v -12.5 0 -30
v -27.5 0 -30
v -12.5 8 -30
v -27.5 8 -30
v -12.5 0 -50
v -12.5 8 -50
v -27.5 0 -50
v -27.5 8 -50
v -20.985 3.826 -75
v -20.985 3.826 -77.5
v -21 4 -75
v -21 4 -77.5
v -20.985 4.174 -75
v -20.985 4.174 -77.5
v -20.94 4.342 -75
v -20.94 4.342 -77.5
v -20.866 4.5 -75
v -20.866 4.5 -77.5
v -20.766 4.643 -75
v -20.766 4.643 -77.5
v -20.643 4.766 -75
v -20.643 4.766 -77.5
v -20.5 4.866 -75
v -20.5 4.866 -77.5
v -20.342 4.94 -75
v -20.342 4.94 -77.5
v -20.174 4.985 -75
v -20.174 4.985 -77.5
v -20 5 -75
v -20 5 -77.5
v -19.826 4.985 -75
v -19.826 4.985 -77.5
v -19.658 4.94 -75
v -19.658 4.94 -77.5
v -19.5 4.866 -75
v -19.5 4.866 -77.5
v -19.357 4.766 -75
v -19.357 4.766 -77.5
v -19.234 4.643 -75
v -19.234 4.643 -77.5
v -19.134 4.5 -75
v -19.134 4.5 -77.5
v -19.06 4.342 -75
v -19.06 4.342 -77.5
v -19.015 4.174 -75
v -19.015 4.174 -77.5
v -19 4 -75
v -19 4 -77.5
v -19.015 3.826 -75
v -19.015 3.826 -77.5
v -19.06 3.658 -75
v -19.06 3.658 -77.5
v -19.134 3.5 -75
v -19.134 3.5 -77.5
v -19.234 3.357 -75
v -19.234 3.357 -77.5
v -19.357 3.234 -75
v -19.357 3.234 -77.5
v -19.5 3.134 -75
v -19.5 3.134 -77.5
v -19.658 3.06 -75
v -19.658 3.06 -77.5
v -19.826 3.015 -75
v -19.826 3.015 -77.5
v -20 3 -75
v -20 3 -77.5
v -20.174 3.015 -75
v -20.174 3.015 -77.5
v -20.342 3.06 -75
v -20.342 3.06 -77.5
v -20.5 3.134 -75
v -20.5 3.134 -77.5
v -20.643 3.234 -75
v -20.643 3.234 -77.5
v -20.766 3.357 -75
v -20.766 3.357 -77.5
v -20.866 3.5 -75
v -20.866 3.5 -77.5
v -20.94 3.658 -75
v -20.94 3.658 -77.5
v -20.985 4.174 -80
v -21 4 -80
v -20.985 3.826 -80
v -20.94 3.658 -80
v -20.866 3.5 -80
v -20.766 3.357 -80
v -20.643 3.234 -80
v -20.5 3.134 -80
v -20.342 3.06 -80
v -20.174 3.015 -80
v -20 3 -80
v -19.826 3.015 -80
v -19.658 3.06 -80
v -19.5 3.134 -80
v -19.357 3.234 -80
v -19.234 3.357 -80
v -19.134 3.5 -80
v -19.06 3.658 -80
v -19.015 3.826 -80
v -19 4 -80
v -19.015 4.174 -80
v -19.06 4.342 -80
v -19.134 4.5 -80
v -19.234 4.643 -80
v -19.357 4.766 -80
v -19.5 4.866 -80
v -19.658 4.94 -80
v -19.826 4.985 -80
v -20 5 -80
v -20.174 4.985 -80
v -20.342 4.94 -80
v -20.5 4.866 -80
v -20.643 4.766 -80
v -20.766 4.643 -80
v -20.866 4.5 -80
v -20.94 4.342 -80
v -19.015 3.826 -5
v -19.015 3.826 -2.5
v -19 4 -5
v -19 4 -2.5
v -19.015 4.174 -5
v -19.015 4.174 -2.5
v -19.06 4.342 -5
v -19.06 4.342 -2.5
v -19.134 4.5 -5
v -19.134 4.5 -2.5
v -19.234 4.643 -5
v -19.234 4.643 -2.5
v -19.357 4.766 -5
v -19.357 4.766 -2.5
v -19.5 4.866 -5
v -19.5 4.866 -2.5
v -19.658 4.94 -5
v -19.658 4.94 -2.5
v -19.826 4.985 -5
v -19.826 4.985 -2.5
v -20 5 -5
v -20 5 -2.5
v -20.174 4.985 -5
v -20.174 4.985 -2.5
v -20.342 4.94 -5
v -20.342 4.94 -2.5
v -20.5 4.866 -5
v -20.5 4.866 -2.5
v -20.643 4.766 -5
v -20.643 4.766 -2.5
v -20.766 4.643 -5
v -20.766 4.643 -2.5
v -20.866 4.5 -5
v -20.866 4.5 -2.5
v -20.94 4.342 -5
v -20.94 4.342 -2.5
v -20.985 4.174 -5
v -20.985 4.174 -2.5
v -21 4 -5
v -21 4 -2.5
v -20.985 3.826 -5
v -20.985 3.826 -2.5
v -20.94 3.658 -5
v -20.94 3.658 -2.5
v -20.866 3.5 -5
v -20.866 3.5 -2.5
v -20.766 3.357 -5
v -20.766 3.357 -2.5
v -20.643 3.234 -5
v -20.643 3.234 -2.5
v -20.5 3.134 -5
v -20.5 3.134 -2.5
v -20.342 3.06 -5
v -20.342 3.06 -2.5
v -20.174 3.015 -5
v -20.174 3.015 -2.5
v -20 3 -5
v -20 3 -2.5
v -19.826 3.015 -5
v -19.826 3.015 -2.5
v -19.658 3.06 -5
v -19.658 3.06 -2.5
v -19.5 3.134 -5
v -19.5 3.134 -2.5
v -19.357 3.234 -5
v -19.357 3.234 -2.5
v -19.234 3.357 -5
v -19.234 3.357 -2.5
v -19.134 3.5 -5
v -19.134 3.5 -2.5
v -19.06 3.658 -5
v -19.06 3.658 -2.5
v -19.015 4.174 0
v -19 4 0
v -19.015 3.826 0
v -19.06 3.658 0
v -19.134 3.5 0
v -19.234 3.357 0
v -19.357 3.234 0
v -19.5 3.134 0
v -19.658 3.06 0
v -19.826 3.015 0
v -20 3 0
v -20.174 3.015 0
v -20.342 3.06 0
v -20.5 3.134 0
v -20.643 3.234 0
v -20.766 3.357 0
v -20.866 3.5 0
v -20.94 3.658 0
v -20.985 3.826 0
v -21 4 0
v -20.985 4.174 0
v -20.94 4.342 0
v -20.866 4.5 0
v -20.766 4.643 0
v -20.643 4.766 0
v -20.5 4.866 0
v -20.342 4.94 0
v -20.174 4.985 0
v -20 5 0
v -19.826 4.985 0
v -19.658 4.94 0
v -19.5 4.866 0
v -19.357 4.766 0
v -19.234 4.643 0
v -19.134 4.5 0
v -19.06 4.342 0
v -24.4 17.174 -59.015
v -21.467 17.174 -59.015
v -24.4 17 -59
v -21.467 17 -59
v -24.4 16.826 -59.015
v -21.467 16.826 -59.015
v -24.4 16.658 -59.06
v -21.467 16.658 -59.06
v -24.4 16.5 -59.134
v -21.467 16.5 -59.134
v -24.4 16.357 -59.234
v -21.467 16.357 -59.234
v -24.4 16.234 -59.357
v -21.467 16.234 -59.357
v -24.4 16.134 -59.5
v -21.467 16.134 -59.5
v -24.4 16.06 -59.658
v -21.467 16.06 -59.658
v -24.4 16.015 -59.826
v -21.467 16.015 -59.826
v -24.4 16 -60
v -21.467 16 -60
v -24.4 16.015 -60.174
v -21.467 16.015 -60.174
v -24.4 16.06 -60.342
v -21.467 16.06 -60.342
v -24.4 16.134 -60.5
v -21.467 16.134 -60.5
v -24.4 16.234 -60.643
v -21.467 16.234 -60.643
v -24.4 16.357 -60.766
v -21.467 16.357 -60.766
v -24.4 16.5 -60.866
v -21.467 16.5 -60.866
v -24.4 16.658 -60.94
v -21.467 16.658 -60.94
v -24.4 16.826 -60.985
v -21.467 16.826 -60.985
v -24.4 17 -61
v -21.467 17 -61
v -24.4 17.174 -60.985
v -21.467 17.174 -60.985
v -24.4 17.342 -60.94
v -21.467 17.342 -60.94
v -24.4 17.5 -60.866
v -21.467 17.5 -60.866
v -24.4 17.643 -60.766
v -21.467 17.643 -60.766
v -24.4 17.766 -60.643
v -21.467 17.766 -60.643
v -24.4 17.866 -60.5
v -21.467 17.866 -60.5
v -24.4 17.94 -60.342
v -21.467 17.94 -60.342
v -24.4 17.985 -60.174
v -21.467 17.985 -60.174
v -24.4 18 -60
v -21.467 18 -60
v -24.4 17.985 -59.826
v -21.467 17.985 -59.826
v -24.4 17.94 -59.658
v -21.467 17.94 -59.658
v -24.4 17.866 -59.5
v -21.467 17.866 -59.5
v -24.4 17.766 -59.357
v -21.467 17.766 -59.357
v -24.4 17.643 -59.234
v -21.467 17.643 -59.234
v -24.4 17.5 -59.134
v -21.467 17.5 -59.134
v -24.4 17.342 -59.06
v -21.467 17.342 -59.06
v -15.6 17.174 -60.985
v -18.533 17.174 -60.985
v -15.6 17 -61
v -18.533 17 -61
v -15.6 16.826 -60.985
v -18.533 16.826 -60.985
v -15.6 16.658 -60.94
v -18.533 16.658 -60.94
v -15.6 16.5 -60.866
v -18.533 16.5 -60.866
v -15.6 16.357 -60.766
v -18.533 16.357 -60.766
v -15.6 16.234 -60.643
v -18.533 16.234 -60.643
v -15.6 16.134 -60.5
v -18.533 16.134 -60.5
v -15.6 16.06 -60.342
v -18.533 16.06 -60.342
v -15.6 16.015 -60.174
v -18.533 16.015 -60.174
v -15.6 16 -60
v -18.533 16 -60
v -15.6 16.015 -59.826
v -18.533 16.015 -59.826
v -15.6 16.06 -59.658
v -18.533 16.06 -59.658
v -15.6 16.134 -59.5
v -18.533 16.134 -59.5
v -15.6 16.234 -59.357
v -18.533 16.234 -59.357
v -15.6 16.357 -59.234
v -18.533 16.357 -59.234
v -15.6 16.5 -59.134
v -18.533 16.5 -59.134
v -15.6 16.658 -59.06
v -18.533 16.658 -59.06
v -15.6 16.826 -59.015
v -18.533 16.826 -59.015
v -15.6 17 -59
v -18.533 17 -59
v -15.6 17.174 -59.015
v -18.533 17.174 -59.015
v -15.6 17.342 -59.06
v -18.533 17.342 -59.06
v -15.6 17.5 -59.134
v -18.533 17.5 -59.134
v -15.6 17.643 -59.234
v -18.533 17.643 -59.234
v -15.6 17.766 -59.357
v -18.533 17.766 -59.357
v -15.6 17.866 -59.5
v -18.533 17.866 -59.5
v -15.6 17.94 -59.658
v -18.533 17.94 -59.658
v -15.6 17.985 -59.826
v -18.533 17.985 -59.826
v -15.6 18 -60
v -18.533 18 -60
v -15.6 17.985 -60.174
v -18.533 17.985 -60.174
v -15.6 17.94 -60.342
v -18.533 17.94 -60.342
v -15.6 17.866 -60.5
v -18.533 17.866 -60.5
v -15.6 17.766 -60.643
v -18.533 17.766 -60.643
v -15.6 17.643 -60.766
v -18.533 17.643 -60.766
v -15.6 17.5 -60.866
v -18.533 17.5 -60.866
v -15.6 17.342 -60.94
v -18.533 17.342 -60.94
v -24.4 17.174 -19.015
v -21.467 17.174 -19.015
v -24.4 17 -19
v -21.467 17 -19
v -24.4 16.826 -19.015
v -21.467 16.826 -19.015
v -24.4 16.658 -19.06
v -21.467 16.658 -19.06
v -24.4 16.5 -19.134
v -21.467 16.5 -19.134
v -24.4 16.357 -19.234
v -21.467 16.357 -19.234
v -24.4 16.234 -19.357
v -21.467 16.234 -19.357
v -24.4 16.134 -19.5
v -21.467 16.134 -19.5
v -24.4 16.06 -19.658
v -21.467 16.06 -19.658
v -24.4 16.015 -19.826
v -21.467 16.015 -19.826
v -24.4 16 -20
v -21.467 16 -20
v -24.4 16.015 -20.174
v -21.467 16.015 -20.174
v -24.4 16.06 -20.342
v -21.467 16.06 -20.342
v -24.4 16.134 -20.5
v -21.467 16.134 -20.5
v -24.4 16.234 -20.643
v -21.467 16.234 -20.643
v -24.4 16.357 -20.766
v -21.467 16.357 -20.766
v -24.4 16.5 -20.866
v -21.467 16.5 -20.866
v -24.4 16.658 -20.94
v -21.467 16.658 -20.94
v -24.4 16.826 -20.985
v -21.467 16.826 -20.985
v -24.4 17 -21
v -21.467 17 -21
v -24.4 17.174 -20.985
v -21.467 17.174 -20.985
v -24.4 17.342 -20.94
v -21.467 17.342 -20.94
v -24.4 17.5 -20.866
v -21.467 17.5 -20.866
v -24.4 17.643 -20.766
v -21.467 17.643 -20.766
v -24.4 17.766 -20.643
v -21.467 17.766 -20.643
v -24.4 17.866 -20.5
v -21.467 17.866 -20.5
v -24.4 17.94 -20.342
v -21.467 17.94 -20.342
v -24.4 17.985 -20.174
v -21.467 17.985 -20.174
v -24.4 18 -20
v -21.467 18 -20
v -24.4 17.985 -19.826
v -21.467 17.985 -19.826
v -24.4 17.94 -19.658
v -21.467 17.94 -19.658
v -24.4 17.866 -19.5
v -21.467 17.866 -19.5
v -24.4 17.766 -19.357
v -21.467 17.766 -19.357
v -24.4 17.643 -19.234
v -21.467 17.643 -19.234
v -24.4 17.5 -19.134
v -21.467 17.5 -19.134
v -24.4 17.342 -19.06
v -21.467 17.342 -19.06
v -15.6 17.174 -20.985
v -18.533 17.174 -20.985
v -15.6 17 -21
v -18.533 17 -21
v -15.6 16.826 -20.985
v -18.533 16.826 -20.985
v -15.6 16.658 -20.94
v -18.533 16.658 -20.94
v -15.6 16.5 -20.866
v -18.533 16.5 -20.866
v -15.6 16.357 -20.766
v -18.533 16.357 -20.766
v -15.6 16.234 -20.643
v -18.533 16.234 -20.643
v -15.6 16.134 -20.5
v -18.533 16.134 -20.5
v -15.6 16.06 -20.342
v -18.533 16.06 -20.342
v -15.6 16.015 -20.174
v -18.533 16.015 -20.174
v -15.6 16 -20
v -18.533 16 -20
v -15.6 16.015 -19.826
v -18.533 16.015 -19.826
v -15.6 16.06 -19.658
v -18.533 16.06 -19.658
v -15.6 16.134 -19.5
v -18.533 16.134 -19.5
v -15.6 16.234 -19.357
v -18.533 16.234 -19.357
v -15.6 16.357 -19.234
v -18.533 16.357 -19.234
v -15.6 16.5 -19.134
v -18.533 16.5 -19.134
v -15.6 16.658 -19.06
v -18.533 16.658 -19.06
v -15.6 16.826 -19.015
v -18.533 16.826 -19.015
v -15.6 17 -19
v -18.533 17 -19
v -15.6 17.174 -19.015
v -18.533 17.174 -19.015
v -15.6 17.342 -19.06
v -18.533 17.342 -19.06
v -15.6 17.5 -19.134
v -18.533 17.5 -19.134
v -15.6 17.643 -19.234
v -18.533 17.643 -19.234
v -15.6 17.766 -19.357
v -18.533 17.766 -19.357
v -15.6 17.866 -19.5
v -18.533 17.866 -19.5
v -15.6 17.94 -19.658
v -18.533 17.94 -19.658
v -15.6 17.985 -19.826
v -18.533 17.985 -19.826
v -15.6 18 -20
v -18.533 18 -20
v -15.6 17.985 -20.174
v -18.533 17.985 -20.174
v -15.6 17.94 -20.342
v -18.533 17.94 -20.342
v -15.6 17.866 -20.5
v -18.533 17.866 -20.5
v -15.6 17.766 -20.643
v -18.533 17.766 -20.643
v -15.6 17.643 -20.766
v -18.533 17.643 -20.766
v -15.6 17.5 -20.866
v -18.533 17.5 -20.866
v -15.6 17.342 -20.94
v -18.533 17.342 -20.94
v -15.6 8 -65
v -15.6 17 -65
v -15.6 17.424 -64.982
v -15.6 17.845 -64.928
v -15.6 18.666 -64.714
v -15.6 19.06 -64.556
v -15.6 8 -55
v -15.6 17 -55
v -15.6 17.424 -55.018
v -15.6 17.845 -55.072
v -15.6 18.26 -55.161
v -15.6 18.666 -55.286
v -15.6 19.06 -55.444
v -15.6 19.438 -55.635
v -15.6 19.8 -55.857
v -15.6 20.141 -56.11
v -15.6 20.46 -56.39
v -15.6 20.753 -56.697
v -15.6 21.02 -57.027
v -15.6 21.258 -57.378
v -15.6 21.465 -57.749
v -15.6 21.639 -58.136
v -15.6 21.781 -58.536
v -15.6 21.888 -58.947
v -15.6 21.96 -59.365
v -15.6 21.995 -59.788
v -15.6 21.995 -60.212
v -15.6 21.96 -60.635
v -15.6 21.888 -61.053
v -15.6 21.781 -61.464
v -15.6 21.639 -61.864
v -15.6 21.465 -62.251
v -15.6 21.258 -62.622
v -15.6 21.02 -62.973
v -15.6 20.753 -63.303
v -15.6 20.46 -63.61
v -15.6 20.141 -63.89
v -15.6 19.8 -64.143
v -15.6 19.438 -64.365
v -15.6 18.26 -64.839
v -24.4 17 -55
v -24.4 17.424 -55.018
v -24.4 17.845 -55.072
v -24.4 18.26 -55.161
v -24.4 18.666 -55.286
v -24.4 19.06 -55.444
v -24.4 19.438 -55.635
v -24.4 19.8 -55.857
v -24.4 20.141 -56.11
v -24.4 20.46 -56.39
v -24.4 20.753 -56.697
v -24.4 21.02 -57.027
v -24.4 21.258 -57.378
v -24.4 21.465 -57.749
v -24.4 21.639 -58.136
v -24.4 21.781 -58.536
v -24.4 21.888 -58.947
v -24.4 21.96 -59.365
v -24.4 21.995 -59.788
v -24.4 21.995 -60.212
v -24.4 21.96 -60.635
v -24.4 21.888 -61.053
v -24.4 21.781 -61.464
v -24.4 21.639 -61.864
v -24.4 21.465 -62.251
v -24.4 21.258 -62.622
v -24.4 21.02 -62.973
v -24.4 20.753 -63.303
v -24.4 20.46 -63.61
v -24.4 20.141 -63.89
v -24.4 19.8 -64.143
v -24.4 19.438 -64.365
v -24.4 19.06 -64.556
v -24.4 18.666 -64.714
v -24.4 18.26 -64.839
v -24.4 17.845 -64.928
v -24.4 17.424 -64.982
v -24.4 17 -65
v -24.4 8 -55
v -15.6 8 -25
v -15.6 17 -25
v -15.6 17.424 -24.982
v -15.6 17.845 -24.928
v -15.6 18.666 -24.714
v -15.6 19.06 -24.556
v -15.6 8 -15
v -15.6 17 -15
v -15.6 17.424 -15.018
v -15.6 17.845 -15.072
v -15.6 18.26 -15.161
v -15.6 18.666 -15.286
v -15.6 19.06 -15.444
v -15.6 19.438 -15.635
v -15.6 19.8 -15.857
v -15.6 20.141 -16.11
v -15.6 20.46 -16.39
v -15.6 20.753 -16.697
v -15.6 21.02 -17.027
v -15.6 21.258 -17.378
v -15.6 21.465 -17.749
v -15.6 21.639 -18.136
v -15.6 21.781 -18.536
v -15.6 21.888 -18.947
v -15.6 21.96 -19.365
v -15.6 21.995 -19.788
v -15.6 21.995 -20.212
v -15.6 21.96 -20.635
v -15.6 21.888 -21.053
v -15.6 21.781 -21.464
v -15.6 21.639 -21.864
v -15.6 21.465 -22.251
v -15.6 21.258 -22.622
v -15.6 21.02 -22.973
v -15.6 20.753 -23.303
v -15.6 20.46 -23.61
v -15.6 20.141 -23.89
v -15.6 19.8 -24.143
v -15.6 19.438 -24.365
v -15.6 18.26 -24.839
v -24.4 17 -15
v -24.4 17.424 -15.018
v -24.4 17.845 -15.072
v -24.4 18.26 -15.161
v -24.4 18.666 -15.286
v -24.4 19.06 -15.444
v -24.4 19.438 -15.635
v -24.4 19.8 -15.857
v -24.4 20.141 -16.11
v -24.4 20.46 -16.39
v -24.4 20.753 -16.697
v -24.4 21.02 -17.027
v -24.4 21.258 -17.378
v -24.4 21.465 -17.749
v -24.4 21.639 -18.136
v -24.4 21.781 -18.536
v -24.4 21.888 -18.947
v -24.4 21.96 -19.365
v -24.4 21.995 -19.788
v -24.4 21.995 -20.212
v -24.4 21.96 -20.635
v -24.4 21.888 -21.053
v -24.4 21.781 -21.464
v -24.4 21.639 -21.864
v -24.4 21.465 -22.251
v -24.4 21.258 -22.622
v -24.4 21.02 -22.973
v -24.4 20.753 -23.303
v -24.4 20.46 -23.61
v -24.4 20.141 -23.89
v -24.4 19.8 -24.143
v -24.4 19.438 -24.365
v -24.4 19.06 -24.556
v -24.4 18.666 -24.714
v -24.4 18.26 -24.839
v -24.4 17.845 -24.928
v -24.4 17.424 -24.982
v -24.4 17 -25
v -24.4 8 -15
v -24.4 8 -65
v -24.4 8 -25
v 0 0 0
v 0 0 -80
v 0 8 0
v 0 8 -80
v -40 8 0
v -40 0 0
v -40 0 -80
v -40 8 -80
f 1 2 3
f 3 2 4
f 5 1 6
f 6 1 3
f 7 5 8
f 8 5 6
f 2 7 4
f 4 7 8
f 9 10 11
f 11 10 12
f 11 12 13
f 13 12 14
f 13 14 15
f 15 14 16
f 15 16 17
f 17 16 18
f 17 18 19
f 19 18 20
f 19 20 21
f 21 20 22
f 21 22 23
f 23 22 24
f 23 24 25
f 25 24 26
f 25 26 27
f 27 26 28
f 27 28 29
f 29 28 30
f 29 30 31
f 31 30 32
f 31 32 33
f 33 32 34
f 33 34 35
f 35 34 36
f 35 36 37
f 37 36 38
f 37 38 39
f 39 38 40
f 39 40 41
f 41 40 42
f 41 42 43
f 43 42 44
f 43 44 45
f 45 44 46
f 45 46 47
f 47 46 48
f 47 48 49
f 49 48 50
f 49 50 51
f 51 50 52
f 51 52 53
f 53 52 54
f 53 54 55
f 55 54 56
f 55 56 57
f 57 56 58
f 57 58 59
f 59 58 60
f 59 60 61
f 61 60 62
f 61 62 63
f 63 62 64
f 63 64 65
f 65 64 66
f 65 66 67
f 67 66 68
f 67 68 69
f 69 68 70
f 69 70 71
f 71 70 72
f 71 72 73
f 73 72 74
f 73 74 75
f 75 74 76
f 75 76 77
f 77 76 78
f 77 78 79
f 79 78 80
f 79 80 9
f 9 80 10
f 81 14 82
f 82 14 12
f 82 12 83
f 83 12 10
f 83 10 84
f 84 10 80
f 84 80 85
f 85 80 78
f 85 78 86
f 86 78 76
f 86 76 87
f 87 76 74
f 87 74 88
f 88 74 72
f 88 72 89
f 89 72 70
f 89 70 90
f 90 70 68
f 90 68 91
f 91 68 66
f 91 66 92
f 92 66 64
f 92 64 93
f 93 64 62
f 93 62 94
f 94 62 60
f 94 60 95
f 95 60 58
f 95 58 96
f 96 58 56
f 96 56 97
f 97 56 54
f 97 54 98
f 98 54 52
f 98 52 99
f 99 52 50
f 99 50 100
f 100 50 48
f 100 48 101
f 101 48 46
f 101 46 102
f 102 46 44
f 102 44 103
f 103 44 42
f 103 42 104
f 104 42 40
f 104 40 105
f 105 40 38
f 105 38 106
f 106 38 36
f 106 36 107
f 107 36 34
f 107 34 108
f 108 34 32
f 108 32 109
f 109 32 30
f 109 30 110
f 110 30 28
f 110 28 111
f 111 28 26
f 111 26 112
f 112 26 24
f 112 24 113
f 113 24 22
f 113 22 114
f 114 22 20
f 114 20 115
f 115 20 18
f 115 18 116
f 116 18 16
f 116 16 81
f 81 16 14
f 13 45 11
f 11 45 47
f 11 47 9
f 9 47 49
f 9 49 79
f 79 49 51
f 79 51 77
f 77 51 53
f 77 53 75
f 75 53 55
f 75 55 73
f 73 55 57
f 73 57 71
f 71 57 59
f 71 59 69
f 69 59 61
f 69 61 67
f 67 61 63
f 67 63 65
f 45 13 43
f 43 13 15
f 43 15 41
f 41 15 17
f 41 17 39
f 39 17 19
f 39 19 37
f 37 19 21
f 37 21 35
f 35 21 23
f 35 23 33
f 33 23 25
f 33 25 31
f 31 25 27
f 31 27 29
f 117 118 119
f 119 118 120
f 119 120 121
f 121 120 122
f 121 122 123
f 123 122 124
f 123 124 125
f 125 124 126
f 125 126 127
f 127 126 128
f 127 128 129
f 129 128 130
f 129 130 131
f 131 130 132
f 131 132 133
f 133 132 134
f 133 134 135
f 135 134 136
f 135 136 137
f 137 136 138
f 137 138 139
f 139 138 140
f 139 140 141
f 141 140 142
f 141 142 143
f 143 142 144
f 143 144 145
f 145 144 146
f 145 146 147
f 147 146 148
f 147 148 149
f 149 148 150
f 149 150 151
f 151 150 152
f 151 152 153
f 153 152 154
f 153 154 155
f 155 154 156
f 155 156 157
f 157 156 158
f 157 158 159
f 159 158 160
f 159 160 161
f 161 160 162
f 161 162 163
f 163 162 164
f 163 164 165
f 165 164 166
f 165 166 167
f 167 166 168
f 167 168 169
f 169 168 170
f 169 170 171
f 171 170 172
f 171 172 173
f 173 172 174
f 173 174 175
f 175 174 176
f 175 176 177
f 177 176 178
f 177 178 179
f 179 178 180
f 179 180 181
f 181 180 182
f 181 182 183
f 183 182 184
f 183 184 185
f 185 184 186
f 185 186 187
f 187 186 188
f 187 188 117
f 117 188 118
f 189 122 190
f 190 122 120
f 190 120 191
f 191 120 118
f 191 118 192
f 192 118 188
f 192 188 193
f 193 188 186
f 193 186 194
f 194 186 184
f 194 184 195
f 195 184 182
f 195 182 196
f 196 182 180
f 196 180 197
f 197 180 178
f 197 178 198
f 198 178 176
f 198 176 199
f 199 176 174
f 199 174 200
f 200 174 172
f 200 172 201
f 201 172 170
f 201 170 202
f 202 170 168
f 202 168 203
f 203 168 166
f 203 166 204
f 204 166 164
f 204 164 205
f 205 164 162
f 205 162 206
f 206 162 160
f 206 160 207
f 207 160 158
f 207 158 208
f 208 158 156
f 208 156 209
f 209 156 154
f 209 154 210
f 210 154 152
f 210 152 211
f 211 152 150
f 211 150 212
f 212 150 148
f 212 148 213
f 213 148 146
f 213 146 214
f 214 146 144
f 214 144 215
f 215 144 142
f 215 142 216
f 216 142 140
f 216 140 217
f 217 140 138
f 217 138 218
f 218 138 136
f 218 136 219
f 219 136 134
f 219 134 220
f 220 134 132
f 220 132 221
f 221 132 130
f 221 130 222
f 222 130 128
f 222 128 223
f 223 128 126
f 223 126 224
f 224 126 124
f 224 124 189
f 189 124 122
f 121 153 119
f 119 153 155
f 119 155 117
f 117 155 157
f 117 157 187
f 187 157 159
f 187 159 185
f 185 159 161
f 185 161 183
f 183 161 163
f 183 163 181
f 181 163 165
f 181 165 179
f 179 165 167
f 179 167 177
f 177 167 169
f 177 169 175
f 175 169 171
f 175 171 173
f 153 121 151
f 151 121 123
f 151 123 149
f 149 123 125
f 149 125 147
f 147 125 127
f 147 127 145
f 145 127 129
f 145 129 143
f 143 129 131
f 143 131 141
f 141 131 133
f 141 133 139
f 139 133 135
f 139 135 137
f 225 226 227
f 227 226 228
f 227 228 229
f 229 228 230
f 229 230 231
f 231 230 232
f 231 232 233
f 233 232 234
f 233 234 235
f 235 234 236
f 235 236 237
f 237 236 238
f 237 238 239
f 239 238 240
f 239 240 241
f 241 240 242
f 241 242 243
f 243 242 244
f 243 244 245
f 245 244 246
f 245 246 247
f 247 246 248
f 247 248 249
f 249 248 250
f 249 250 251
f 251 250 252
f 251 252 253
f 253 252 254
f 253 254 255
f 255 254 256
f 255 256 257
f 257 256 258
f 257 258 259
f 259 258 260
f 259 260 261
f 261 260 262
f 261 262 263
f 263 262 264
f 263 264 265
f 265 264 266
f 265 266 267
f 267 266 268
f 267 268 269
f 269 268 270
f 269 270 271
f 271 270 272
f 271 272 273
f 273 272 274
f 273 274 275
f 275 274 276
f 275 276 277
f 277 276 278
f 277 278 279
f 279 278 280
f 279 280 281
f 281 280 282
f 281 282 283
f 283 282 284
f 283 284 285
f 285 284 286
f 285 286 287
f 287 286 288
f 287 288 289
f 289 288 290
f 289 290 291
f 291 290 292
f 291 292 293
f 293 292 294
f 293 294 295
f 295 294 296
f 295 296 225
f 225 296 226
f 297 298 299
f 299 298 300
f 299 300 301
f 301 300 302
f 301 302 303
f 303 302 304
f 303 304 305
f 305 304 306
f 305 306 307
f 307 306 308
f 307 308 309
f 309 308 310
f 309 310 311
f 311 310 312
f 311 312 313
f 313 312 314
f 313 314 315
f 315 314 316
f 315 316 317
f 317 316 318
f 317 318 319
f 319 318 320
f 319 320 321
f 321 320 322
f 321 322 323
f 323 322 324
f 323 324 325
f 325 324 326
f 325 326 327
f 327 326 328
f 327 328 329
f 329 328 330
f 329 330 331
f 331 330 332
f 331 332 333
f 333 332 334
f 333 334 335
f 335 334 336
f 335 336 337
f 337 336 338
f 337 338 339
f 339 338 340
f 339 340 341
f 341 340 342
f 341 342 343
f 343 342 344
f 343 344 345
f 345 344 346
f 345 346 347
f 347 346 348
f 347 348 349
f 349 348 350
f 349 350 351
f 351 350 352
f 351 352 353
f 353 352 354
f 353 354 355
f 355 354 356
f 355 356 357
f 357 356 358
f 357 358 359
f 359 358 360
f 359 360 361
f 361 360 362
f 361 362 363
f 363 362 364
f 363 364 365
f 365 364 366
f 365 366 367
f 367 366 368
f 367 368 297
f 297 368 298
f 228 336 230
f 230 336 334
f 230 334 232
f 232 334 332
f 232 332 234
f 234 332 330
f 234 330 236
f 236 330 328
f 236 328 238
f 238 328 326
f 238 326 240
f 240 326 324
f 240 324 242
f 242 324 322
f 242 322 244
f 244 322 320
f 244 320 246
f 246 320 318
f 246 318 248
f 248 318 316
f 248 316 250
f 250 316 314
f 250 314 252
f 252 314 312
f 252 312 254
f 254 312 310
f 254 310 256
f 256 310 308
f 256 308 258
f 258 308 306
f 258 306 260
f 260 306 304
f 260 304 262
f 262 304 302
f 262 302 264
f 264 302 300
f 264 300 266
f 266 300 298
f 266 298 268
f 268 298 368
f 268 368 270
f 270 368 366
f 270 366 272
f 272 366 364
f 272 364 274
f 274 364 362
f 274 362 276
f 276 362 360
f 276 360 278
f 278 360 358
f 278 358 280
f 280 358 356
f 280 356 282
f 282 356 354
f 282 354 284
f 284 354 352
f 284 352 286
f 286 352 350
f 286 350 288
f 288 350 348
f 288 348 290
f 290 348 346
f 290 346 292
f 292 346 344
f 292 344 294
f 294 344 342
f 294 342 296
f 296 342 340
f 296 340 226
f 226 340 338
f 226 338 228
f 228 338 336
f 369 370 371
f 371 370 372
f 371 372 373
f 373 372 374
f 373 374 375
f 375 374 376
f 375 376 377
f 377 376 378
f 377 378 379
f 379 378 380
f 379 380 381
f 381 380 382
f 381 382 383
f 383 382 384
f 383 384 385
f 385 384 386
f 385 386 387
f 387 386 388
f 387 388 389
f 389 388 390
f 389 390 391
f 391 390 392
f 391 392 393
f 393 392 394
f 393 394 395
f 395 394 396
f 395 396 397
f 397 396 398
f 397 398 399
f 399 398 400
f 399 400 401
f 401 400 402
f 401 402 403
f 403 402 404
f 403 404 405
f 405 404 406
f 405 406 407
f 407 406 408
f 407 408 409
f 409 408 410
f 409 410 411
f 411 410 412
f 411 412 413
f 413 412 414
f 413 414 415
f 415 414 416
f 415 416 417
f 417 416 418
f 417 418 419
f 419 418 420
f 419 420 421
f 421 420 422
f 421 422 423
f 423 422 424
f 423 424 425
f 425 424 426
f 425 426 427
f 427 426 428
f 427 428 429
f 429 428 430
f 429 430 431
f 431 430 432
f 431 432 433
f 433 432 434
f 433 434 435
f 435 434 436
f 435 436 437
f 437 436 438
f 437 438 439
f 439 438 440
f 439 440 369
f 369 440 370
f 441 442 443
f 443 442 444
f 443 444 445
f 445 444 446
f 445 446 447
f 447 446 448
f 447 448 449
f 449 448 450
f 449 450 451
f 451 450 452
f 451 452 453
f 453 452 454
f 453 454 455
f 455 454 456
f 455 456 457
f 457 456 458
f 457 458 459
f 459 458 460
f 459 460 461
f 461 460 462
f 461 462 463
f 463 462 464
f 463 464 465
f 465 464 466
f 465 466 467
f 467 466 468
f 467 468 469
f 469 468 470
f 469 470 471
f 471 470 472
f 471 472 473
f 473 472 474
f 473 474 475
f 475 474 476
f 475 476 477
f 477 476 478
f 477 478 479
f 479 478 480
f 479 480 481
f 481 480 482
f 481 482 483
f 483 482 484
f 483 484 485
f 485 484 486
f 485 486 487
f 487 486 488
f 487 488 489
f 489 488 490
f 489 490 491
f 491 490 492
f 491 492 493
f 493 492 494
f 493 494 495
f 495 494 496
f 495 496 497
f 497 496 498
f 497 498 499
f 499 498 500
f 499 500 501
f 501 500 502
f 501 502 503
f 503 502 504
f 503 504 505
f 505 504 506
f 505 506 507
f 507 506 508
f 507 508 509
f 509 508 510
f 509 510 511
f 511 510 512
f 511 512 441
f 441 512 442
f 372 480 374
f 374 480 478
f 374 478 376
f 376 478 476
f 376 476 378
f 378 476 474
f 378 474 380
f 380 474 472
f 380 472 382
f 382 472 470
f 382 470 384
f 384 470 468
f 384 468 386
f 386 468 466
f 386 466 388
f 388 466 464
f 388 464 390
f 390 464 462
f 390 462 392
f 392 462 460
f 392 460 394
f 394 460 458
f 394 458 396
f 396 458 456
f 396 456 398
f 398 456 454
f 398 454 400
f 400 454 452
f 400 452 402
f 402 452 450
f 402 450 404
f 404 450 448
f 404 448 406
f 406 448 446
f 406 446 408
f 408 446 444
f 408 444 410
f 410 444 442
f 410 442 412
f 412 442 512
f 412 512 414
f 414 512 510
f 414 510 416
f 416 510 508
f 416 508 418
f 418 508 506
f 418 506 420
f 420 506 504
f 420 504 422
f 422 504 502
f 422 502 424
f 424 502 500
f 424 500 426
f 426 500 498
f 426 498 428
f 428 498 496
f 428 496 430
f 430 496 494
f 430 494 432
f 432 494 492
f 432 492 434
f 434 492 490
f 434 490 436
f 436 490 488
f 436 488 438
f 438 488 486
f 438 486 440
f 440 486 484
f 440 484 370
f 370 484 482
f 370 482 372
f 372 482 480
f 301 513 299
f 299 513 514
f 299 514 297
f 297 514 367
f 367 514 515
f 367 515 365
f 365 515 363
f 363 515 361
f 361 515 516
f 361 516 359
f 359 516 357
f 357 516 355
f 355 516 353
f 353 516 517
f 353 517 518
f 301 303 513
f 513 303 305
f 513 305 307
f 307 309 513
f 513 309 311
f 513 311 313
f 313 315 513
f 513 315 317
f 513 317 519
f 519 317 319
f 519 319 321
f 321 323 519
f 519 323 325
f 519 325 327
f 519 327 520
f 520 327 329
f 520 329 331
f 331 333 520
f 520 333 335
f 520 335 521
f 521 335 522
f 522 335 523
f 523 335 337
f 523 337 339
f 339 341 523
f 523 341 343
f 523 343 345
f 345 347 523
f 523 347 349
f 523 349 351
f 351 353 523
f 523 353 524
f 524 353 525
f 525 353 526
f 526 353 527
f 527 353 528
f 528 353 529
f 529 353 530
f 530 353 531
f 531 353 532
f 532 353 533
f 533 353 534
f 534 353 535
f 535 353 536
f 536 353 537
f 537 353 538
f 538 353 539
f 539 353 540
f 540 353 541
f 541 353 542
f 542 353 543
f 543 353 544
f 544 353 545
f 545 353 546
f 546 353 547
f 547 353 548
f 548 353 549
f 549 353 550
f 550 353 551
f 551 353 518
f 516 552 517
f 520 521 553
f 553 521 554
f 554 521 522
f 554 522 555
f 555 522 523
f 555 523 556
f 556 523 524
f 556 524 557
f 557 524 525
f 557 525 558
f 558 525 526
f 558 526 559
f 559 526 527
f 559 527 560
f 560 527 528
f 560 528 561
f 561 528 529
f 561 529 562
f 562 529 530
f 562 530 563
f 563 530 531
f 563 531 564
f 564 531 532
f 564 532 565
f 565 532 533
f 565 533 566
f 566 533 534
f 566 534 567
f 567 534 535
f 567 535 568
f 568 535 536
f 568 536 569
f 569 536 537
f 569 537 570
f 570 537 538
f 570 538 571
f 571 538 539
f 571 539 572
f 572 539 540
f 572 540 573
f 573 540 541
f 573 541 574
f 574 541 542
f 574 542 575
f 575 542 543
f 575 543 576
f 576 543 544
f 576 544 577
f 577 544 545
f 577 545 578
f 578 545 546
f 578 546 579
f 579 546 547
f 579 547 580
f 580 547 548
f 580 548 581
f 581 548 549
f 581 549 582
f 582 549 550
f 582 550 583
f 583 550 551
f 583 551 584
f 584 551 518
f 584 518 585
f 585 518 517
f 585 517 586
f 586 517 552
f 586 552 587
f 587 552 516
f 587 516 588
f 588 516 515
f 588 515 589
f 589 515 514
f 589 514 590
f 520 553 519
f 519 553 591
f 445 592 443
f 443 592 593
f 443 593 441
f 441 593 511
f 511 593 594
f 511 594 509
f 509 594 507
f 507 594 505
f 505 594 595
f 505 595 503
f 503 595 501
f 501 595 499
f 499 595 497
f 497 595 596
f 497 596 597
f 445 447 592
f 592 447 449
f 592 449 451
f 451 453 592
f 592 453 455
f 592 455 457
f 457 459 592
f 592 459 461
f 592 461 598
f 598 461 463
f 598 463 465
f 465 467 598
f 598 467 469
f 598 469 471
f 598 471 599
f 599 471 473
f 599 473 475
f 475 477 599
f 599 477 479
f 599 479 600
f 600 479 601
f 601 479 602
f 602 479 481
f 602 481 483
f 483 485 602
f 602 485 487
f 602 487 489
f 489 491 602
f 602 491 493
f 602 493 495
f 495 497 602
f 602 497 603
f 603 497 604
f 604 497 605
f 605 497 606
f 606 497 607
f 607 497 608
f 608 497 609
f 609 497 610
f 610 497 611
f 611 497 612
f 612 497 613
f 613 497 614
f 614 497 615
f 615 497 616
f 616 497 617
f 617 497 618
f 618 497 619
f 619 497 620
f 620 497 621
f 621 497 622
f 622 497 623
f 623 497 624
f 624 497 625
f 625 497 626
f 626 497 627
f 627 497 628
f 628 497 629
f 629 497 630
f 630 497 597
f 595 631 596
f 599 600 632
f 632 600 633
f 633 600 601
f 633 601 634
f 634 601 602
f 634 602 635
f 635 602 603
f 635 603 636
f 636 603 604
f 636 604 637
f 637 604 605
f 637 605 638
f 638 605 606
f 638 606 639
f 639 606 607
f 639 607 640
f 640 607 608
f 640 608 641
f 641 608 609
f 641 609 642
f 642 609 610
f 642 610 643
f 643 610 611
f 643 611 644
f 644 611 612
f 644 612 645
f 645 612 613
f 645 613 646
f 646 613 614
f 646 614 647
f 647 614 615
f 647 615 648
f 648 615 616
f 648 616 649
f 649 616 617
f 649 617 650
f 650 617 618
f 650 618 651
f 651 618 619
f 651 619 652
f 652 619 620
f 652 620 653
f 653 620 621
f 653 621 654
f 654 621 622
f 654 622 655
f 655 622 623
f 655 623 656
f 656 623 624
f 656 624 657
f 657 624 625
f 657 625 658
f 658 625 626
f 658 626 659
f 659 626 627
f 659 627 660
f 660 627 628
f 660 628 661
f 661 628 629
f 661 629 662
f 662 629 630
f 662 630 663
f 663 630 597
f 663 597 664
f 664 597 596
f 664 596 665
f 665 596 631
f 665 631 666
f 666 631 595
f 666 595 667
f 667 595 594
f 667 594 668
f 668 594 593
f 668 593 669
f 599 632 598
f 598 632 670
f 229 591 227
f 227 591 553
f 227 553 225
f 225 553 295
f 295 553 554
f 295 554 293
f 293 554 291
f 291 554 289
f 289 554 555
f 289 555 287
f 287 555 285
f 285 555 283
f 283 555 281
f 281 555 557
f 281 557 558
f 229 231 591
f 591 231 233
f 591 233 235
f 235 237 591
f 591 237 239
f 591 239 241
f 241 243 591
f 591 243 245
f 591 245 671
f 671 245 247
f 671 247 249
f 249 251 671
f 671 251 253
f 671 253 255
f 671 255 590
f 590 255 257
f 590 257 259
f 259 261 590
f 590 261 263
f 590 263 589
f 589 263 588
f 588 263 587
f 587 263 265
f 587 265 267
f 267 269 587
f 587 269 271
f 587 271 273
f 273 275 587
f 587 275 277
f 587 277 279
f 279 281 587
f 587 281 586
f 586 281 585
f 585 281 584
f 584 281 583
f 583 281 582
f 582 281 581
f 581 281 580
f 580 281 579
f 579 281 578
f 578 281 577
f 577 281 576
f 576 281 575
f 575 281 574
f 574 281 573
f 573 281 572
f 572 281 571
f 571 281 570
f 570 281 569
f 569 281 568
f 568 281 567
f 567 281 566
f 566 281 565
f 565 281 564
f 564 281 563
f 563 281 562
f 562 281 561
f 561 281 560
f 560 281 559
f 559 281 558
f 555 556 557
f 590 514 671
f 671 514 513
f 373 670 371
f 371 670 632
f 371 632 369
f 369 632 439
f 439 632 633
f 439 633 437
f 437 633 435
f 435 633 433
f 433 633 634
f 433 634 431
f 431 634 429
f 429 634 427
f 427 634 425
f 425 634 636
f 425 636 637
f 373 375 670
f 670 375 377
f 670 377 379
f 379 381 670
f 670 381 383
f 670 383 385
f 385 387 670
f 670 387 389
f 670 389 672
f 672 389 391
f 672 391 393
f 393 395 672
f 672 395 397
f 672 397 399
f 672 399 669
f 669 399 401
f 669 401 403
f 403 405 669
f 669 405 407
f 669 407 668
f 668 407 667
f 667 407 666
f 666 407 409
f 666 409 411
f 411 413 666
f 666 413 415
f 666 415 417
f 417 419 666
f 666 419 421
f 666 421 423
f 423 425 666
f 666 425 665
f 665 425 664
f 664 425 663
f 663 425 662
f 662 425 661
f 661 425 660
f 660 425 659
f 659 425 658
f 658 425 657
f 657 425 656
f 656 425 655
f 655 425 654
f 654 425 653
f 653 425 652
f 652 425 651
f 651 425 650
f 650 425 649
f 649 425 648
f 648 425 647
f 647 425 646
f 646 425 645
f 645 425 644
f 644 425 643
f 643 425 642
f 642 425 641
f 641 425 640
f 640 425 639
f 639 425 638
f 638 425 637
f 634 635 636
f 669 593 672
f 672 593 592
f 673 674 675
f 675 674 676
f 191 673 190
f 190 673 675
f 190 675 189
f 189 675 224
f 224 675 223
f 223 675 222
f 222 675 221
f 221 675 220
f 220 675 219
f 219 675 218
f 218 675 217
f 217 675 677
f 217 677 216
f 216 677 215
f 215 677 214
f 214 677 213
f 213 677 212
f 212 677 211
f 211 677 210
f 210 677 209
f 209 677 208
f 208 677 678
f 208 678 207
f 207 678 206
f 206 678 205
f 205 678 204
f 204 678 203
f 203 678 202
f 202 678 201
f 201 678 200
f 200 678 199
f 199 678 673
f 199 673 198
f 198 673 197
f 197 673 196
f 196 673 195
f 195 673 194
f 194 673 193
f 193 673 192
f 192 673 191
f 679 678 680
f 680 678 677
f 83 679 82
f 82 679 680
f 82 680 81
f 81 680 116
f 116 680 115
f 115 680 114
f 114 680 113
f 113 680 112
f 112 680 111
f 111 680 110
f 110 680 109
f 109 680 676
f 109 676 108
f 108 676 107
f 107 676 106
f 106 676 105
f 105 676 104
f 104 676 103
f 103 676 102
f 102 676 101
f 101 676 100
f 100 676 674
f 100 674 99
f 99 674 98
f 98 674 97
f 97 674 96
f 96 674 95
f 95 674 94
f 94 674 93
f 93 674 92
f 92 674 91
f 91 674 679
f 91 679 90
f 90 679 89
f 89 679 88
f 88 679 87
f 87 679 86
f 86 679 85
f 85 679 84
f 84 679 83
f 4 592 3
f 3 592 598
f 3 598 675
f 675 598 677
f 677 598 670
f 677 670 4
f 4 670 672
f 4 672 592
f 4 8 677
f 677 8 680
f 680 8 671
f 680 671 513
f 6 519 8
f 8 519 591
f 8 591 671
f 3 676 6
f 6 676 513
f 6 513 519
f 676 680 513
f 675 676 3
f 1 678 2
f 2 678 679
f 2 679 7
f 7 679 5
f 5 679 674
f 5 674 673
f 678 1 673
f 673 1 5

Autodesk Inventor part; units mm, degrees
ref_plane "YZ Plane" through (0, 0, 0) normal (1, 0, 0) x (0, 1, 0)
ref_plane "XZ Plane" through (0, 0, 0) normal (0, 1, 0) x (-1, 0, 0)
ref_plane "XY Plane" through (0, 0, 0) normal (0, 0, 1) x (1, 0, 0)
sketch "Sketch1" plane through (0, 0, 0) normal (0, 1, 0) x (-1, 0, 0)
  line L0 (0, 0) -> (40, 0)
  line L1 (40, 0) -> (40, -80)
  line L2 (40, -80) -> (0, -80)
  line L3 (0, -80) -> (0, 0)
  dimension "d0" = 40
  dimension "d1" = 80
extrude "Extrusion1" add sketch "Sketch1" along normal blind 8
sketch "Sketch2" plane through (0, 8, 0) normal (0, 1, 0) x (1, 0, 0)
  line L0 (-24.4, 15) -> (-15.6, 15)
  line L1 (-15.6, 15) -> (-15.6, 25)
  line L2 (-15.6, 25) -> (-24.4, 25)
  line L3 (-24.4, 25) -> (-24.4, 15)
  line L4 (-40, 0) -> (0, 0) projected
  line L5 (-24.4, 55) -> (-15.6, 55)
  line L6 (-15.6, 55) -> (-15.6, 65)
  line L7 (-15.6, 65) -> (-24.4, 65)
  line L8 (-24.4, 65) -> (-24.4, 55)
  line L9 (-20, 25) -> (-20, 55) construction
  line L10 (-40, 80) -> (-40, 0) construction
  point P0 (-20, 15)
  point P1 (-20, 0)
  point P2 (-20, 40)
  point P3 (-40, 40)
  dimension "d4" = 8.8
  dimension "d5" = 10
  dimension "d6" = 10
  dimension "d7" = 8.8
  dimension "d8" = 30
extrude "Extrusion2" add sketch "Sketch2" along normal blind 14
fillet "Fillet1" radius 5 4 edges at (-20, 22, -15) (-20, 22, -25) (-20, 22, -55) (-20, 22, -65)
sketch "Sketch3" plane through (-15.6, 8, -15) normal (1, 0, 0) x (0, 0, -1)
  arc A0 (10, 9) -> (0, 9) centre (5, 9) ccw projected
  circle A1 centre (5, 9) radius 1
  arc A2 (50, 9) -> (40, 9) centre (45, 9) ccw projected
  circle A3 centre (45, 9) radius 1
  point P0 (-15, -8)
  dimension "d12" = 2
  dimension "d13" = 2
extrude "Extrusion3" cut sketch "Sketch3" against normal blind 14
sketch "Sketch4" plane through (-40, 0, 0) normal (0, 0, 1) x (1, 0, 0)
  circle A0 centre (20, 4) radius 1
  line L0 (40, 0) -> (40, 8) projected
  line L1 (0, 8) -> (40, 8) projected
  point P0 (40, 4)
  point P1 (20, 8)
  dimension "d16" = 2
extrude "Extrusion4" cut sketch "Sketch4" against normal blind 5
sketch "Sketch5" plane through (0, 0, -80) normal (0, 0, -1) x (-1, 0, 0)
  circle A0 centre (20, 4) radius 1 projected
  point P0 (0, 0)
extrude "Extrusion5" cut sketch "Sketch5" against normal blind 5
sketch "Sketch6" plane through (0, 8, 0) normal (0, 1, 0) x (1, 0, 0)
  line L0 (-27.5, 50) -> (-12.5, 50)
  line L1 (-12.5, 50) -> (-12.5, 30)
  line L2 (-12.5, 30) -> (-27.5, 30)
  line L3 (-27.5, 30) -> (-27.5, 50)
  line L4 (-40, 80) -> (-40, 0) projected
  line L5 (-40, 0) -> (0, 0) projected
  point P0 (-12.5, 40)
  point P1 (-40, 40)
  point P2 (-20, 50)
  point P3 (-20, 0)
  dimension "d21" = 20
  dimension "d22" = 15
extrude "Extrusion6" cut sketch "Sketch6" against normal up to surface (8 mm away)
properties part number "basePlate"
